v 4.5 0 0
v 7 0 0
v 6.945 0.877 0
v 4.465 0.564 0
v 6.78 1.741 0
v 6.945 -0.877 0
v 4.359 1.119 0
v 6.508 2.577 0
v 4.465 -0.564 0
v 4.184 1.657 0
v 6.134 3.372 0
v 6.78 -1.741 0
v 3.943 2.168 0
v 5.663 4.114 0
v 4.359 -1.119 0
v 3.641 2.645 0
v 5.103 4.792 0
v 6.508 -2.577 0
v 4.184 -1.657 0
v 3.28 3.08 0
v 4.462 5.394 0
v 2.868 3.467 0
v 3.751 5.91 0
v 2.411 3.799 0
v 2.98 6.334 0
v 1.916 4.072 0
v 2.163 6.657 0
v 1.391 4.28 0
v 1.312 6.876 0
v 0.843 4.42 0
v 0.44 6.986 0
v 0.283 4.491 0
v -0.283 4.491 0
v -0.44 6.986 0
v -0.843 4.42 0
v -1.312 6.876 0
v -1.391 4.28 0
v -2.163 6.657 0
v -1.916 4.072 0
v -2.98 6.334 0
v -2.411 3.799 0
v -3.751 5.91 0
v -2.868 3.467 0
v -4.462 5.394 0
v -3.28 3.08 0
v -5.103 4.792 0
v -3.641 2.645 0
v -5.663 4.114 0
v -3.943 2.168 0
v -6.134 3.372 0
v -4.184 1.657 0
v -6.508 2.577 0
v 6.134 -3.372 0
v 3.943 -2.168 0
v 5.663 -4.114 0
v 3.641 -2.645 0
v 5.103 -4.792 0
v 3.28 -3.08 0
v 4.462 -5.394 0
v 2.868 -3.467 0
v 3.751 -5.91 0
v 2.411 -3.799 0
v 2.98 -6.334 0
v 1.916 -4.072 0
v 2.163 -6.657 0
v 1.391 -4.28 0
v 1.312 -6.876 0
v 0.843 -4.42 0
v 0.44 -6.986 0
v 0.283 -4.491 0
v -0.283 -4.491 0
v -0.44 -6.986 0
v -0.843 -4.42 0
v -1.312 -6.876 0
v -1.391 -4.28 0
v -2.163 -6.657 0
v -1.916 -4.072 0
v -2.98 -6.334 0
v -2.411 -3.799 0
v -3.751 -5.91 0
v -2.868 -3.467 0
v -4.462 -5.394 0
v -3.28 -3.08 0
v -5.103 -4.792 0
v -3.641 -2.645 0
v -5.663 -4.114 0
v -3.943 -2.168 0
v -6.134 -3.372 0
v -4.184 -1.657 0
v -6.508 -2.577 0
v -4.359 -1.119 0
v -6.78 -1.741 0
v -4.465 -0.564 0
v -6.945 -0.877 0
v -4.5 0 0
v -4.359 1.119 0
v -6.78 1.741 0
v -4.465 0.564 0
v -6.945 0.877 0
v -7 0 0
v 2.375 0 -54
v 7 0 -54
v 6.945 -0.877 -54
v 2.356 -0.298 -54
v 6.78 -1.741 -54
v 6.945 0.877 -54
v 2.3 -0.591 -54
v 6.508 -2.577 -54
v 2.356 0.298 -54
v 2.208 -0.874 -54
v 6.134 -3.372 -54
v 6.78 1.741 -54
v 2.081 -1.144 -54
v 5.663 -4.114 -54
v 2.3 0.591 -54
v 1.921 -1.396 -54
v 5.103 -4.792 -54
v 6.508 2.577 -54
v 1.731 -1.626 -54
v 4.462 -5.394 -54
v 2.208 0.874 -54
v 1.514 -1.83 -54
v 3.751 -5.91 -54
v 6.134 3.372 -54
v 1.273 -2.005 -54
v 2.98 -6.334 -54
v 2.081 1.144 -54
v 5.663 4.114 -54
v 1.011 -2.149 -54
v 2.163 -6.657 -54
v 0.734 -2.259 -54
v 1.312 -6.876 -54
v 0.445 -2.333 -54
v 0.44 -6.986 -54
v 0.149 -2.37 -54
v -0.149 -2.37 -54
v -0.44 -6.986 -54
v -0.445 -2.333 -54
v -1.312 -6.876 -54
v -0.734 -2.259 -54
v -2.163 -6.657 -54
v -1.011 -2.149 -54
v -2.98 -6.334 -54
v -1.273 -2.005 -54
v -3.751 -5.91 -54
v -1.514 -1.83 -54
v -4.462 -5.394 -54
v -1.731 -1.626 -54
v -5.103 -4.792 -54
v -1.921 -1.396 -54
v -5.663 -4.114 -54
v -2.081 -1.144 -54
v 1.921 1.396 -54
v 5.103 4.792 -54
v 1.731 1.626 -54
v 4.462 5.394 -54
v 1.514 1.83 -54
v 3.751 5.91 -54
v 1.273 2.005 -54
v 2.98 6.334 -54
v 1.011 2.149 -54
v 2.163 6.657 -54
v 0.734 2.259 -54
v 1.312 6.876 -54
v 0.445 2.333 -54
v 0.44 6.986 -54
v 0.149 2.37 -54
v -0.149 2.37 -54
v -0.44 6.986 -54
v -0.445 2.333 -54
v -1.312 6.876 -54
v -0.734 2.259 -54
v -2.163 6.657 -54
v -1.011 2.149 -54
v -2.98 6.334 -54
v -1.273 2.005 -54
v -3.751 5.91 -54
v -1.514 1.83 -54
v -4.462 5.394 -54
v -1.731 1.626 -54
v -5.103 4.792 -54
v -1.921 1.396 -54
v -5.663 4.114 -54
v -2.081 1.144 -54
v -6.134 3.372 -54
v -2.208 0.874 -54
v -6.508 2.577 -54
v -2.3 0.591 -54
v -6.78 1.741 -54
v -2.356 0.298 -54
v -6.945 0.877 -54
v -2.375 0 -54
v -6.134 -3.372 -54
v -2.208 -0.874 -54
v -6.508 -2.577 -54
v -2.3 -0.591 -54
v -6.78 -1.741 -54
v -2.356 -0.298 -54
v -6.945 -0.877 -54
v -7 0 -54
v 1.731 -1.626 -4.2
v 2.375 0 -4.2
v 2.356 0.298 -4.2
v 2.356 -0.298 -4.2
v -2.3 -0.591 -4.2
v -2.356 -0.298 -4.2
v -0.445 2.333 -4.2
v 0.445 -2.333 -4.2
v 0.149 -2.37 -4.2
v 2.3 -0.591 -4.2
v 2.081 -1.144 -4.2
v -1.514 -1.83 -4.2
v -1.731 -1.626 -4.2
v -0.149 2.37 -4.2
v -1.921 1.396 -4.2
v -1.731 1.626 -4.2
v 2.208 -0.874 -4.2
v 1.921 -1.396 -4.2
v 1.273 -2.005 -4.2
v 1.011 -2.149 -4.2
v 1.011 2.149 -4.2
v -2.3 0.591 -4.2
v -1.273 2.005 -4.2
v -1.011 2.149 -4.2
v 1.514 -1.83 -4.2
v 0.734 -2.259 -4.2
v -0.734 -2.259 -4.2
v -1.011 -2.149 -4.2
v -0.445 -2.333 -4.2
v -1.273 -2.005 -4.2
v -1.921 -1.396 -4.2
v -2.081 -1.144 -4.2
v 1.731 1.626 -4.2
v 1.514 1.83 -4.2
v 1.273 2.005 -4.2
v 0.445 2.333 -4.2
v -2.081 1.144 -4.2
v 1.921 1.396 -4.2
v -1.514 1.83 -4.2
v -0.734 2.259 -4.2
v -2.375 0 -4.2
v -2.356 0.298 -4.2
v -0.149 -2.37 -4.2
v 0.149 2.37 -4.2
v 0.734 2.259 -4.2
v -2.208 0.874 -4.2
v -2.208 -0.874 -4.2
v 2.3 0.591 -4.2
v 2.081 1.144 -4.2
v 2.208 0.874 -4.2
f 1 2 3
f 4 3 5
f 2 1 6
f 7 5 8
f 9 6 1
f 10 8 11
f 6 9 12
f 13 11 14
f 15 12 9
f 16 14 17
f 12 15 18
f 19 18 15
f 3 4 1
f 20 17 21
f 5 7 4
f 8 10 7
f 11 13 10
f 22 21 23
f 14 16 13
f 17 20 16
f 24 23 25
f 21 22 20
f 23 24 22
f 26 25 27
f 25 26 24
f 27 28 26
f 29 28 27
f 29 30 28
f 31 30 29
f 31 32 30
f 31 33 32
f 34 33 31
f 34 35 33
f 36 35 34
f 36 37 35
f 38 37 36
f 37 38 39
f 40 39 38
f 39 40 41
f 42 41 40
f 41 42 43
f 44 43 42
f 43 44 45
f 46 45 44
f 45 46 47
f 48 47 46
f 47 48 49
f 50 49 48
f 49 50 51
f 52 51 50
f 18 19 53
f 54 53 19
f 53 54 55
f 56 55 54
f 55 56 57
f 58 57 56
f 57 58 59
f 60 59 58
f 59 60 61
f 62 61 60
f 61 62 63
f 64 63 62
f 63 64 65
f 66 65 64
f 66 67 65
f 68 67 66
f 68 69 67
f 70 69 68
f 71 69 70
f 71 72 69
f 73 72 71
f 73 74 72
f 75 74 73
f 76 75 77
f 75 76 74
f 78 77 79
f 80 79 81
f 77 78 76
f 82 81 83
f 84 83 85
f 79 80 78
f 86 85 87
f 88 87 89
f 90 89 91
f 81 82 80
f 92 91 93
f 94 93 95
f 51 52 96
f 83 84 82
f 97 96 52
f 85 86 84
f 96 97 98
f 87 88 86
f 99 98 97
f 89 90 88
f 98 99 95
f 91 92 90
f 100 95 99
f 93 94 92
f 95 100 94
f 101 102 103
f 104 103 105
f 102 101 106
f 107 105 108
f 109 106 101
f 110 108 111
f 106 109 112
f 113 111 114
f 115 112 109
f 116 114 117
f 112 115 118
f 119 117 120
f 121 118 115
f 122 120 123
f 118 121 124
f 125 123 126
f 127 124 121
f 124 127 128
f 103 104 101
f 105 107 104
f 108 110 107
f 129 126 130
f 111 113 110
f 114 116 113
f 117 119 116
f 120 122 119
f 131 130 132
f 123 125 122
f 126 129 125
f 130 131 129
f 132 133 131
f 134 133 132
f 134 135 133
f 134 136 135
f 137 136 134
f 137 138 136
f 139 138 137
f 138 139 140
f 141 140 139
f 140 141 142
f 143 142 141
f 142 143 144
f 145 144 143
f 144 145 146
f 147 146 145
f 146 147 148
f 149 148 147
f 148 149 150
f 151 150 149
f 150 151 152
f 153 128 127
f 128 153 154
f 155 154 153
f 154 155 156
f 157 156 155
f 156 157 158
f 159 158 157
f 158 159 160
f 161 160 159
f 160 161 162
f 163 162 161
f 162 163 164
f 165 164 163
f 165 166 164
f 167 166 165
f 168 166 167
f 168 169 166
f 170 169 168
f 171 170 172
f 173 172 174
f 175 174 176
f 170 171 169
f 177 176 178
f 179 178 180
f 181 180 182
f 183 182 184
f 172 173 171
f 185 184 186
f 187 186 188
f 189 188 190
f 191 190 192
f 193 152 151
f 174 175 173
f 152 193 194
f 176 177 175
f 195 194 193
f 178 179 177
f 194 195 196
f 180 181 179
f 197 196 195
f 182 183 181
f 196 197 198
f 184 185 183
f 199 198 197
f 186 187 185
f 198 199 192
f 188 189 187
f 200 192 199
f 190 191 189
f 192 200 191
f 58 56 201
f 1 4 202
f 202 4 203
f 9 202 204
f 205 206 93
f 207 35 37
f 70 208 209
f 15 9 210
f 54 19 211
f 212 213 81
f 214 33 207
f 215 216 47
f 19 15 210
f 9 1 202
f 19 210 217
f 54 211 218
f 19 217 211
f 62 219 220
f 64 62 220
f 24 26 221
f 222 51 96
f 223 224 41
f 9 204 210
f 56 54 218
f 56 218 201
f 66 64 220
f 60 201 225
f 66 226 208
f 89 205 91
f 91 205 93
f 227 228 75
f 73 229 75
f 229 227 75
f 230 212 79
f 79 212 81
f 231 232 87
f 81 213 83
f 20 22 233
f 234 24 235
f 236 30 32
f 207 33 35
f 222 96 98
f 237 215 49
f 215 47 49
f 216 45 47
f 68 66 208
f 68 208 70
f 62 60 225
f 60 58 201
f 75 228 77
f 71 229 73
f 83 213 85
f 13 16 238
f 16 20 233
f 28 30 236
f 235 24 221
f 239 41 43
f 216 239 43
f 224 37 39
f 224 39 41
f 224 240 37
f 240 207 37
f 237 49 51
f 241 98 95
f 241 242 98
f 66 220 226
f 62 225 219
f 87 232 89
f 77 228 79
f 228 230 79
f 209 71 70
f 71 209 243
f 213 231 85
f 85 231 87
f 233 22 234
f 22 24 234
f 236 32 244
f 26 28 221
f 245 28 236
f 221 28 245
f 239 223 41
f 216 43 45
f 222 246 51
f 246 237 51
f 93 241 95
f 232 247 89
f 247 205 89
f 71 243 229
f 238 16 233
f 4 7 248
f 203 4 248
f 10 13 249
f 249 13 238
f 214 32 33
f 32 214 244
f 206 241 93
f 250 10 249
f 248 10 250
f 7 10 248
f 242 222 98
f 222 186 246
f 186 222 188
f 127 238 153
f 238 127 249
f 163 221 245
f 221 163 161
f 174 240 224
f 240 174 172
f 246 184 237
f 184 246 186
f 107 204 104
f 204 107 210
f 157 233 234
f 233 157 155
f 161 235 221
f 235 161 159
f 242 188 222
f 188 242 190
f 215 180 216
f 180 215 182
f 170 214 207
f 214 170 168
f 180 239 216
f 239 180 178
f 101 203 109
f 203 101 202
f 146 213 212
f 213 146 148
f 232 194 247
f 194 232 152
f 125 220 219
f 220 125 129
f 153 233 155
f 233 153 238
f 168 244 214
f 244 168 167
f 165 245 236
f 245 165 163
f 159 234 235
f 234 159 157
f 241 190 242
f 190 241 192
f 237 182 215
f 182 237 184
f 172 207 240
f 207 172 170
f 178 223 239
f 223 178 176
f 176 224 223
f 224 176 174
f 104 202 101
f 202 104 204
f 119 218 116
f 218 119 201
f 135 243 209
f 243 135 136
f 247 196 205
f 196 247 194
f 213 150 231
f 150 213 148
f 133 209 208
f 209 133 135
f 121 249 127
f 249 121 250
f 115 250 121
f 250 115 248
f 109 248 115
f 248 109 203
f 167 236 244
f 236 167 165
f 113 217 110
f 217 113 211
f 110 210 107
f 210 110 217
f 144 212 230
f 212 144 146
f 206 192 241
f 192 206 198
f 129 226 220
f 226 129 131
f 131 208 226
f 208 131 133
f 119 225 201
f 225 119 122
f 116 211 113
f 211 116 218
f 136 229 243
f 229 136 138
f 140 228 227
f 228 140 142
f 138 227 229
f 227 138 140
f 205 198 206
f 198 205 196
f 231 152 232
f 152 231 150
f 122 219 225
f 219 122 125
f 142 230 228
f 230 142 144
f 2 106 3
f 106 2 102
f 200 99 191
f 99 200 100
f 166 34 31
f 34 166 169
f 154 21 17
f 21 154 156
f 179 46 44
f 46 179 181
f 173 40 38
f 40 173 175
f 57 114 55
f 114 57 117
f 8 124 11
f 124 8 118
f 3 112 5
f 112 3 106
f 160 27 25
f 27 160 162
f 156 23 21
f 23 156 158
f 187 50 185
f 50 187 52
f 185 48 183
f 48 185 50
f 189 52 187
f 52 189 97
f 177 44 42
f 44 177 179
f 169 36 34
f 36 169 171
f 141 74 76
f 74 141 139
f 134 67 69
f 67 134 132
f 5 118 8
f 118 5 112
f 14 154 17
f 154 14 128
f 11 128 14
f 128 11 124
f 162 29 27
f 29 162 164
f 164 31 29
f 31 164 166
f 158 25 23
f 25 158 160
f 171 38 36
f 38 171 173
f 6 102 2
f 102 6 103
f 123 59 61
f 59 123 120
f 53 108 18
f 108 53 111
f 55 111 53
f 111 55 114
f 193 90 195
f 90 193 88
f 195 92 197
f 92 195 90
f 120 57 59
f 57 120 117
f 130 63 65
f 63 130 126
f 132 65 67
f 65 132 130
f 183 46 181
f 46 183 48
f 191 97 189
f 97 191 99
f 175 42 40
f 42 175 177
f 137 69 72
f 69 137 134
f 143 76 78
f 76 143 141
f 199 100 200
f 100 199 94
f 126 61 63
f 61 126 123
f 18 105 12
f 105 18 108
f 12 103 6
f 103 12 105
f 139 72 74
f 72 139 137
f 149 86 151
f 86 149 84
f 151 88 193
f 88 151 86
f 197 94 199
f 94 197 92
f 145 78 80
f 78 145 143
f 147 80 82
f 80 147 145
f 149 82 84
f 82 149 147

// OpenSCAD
$fn = 50;


difference() {
	union() {
		translate(v = [0, 0, -54.0000000000]) {
			cylinder(h = 54, r = 7.0000000000);
		}
		cylinder(h = 0, r = 17.0000000000);
	}
	union() {
		translate(v = [0, 0, 0]) {
			rotate(a = [0, 0, 0]) {
				difference() {
					union() {
						#translate(v = [0, 0, -54.0000000000]) {
							cylinder(h = 54, r = 2.2500000000);
						}
						#translate(v = [0, 0, -4.2000000000]) {
							cylinder(h = 4.2000000000, r1 = 2.3750000000, r2 = 4.5000000000);
						}
						#translate(v = [0, 0, -54.0000000000]) {
							cylinder(h = 54, r = 2.3750000000);
						}
						#translate(v = [0, 0, -54.0000000000]) {
							cylinder(h = 54, r = 2.2500000000);
						}
					}
					union();
				}
			}
		}
	}
}
